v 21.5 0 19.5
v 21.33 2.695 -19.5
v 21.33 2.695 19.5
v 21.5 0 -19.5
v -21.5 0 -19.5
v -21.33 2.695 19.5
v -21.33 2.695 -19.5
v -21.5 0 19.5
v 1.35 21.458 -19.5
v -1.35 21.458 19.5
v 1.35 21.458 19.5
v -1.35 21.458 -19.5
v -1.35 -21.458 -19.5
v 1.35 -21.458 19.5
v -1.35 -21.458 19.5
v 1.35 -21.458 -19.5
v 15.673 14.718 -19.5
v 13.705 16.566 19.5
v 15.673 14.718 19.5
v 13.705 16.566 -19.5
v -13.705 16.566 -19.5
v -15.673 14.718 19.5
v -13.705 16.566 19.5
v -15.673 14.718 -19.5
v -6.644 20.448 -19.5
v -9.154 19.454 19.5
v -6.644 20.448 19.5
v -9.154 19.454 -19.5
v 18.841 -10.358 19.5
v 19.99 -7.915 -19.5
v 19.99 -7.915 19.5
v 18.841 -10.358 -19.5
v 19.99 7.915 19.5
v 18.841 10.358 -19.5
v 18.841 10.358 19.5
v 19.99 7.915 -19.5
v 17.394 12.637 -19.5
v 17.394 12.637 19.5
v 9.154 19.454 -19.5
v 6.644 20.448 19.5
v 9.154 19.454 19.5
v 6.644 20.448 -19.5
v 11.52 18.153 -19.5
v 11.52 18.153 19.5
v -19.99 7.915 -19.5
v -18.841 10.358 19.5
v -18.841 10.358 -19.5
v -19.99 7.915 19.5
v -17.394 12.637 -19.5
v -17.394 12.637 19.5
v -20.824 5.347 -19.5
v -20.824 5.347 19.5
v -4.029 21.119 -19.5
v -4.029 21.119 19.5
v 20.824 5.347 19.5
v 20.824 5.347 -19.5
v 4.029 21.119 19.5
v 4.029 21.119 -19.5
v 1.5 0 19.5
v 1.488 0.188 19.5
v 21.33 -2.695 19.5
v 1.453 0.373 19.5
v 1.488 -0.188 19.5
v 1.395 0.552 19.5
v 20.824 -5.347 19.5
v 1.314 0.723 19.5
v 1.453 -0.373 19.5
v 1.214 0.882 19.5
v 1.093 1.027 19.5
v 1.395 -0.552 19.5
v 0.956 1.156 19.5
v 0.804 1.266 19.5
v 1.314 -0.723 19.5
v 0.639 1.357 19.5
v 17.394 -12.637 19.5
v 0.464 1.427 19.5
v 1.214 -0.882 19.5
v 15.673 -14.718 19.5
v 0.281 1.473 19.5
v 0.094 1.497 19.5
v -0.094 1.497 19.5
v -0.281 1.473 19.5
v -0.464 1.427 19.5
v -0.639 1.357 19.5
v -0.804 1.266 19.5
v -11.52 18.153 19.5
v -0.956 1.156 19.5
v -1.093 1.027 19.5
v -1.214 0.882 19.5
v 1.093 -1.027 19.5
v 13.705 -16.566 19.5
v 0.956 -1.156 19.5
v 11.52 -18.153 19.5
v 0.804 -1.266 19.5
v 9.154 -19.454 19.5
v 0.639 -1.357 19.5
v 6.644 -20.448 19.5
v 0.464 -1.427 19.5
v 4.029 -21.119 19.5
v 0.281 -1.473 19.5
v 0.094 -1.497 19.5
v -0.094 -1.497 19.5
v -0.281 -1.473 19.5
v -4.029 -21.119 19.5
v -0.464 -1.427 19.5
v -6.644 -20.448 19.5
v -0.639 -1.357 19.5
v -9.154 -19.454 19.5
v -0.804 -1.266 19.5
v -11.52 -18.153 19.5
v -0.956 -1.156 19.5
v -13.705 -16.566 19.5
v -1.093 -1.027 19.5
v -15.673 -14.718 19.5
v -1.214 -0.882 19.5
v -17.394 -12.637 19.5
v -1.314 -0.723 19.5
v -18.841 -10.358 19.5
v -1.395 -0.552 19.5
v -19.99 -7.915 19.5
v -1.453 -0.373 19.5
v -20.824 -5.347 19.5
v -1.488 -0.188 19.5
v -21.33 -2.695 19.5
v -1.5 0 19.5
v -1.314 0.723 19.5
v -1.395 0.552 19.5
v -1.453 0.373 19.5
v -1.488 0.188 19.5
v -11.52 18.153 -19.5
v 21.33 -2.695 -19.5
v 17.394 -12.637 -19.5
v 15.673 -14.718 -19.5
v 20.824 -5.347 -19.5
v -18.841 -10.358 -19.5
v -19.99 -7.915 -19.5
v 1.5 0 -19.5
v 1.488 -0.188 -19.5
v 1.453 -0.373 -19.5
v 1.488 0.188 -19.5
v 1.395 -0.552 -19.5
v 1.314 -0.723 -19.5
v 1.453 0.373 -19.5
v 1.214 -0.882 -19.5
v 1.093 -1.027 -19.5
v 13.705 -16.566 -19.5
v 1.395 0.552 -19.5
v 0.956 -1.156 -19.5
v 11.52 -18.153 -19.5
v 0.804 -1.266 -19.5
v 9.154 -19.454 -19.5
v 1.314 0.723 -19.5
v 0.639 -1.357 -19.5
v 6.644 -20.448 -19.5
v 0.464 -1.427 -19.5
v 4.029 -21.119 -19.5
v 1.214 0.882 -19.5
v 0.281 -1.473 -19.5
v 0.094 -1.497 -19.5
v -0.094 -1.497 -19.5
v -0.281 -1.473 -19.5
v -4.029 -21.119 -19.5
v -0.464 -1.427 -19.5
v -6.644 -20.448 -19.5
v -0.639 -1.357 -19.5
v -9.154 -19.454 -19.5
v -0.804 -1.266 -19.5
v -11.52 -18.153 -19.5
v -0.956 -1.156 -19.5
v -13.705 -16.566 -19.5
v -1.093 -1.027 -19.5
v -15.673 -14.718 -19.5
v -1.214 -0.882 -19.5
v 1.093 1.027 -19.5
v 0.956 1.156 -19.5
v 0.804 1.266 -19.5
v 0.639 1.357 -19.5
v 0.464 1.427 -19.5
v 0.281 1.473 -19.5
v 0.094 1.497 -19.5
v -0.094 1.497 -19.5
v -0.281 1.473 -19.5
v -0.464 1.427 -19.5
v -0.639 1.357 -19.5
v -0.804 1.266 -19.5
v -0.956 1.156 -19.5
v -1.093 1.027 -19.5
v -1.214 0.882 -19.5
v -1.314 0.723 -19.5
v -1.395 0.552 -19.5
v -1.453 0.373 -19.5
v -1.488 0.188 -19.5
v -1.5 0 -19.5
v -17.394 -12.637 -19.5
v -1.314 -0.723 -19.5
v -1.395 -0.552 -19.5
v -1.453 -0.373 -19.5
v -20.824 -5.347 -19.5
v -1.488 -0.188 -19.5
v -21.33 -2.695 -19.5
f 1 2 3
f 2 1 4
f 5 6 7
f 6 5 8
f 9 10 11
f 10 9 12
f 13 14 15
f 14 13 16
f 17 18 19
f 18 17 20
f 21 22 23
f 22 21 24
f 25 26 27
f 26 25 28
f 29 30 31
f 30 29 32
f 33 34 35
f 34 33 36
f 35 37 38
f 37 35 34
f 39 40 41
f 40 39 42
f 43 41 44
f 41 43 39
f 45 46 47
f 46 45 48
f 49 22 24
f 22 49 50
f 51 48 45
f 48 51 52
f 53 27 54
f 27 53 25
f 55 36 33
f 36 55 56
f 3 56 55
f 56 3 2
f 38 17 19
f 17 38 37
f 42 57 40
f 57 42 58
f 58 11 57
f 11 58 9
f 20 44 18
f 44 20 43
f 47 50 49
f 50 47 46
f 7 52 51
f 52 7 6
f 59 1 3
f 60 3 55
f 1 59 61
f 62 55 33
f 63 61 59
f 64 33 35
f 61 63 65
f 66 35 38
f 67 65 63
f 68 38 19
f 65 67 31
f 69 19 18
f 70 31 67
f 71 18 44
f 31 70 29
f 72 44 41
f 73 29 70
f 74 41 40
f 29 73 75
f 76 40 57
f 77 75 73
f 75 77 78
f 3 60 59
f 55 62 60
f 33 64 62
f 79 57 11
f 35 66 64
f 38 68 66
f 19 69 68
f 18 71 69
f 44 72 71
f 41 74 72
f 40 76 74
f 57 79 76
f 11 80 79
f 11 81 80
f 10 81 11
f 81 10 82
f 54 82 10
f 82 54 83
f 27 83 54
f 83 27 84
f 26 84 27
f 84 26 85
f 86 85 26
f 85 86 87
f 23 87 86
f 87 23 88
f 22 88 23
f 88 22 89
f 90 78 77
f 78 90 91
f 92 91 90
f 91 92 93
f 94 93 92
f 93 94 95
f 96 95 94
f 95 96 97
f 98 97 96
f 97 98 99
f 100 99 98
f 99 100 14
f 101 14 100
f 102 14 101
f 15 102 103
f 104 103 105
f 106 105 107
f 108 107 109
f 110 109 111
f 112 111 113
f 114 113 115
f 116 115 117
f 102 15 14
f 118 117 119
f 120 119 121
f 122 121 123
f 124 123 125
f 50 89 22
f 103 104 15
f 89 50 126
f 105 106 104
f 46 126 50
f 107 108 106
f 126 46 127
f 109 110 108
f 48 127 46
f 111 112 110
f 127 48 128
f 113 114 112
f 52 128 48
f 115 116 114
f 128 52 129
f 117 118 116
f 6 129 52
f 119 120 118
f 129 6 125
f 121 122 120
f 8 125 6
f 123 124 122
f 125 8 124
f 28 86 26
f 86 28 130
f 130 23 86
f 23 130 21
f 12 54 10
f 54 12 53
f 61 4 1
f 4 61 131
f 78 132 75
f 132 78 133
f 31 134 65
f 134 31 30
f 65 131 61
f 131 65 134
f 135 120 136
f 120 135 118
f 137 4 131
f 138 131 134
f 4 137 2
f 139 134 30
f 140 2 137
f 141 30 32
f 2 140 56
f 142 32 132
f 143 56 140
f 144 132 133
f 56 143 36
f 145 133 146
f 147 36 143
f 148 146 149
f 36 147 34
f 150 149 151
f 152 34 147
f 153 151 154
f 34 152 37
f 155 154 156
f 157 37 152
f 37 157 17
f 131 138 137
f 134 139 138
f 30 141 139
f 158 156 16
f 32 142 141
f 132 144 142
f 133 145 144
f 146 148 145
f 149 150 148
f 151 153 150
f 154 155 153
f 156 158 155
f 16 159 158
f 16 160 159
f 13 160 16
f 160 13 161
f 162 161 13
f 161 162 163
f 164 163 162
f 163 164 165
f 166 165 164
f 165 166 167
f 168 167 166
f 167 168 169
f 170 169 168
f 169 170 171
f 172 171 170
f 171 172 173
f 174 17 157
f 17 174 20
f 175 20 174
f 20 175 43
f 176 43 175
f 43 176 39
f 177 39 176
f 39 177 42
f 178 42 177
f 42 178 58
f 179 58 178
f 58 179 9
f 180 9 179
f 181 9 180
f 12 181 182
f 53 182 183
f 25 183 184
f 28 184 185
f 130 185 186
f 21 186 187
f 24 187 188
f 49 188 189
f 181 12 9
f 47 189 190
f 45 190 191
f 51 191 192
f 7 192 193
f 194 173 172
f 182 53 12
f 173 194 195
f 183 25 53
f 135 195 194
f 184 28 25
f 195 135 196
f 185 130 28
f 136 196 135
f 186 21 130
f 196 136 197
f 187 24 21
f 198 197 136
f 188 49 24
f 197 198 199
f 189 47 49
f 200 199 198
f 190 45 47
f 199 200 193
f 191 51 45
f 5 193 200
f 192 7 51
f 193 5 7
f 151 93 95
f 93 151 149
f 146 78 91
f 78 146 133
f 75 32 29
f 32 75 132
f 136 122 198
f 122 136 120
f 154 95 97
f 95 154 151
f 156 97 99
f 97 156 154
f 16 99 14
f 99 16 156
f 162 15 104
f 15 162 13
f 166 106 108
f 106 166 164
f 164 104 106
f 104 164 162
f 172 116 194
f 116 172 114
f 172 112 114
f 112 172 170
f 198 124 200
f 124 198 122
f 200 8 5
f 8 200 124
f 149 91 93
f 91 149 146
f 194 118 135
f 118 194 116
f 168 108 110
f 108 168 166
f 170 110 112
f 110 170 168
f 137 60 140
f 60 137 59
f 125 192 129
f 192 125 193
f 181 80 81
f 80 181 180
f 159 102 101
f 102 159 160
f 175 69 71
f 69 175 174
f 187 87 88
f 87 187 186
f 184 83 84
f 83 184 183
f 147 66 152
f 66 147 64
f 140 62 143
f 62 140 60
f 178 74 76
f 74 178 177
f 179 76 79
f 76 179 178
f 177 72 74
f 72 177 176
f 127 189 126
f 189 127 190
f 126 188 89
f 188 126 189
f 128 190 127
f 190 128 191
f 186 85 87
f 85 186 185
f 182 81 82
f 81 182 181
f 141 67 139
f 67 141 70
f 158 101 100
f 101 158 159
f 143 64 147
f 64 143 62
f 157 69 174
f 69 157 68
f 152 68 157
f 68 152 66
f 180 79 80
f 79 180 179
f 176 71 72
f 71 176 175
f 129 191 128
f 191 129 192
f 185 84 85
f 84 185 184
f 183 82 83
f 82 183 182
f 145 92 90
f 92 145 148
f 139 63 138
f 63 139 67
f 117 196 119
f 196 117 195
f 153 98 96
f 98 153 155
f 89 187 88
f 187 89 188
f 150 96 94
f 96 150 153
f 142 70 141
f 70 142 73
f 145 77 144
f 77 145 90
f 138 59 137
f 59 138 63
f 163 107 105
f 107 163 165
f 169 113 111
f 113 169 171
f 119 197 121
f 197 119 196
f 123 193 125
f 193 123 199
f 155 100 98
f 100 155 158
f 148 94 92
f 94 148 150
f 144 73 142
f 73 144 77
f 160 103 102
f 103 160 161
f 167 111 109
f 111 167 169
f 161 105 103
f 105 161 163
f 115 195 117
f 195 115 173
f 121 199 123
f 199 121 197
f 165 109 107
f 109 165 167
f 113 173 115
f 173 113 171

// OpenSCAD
$fn = 50;


difference() {
	union() {
		translate(v = [0, 0, -19.5000000000]) {
			cylinder(h = 39, r = 21.5000000000);
		}
	}
	union() {
		translate(v = [0, 0, -100.0000000000]) {
			cylinder(h = 200, r = 1.5000000000);
		}
	}
}
